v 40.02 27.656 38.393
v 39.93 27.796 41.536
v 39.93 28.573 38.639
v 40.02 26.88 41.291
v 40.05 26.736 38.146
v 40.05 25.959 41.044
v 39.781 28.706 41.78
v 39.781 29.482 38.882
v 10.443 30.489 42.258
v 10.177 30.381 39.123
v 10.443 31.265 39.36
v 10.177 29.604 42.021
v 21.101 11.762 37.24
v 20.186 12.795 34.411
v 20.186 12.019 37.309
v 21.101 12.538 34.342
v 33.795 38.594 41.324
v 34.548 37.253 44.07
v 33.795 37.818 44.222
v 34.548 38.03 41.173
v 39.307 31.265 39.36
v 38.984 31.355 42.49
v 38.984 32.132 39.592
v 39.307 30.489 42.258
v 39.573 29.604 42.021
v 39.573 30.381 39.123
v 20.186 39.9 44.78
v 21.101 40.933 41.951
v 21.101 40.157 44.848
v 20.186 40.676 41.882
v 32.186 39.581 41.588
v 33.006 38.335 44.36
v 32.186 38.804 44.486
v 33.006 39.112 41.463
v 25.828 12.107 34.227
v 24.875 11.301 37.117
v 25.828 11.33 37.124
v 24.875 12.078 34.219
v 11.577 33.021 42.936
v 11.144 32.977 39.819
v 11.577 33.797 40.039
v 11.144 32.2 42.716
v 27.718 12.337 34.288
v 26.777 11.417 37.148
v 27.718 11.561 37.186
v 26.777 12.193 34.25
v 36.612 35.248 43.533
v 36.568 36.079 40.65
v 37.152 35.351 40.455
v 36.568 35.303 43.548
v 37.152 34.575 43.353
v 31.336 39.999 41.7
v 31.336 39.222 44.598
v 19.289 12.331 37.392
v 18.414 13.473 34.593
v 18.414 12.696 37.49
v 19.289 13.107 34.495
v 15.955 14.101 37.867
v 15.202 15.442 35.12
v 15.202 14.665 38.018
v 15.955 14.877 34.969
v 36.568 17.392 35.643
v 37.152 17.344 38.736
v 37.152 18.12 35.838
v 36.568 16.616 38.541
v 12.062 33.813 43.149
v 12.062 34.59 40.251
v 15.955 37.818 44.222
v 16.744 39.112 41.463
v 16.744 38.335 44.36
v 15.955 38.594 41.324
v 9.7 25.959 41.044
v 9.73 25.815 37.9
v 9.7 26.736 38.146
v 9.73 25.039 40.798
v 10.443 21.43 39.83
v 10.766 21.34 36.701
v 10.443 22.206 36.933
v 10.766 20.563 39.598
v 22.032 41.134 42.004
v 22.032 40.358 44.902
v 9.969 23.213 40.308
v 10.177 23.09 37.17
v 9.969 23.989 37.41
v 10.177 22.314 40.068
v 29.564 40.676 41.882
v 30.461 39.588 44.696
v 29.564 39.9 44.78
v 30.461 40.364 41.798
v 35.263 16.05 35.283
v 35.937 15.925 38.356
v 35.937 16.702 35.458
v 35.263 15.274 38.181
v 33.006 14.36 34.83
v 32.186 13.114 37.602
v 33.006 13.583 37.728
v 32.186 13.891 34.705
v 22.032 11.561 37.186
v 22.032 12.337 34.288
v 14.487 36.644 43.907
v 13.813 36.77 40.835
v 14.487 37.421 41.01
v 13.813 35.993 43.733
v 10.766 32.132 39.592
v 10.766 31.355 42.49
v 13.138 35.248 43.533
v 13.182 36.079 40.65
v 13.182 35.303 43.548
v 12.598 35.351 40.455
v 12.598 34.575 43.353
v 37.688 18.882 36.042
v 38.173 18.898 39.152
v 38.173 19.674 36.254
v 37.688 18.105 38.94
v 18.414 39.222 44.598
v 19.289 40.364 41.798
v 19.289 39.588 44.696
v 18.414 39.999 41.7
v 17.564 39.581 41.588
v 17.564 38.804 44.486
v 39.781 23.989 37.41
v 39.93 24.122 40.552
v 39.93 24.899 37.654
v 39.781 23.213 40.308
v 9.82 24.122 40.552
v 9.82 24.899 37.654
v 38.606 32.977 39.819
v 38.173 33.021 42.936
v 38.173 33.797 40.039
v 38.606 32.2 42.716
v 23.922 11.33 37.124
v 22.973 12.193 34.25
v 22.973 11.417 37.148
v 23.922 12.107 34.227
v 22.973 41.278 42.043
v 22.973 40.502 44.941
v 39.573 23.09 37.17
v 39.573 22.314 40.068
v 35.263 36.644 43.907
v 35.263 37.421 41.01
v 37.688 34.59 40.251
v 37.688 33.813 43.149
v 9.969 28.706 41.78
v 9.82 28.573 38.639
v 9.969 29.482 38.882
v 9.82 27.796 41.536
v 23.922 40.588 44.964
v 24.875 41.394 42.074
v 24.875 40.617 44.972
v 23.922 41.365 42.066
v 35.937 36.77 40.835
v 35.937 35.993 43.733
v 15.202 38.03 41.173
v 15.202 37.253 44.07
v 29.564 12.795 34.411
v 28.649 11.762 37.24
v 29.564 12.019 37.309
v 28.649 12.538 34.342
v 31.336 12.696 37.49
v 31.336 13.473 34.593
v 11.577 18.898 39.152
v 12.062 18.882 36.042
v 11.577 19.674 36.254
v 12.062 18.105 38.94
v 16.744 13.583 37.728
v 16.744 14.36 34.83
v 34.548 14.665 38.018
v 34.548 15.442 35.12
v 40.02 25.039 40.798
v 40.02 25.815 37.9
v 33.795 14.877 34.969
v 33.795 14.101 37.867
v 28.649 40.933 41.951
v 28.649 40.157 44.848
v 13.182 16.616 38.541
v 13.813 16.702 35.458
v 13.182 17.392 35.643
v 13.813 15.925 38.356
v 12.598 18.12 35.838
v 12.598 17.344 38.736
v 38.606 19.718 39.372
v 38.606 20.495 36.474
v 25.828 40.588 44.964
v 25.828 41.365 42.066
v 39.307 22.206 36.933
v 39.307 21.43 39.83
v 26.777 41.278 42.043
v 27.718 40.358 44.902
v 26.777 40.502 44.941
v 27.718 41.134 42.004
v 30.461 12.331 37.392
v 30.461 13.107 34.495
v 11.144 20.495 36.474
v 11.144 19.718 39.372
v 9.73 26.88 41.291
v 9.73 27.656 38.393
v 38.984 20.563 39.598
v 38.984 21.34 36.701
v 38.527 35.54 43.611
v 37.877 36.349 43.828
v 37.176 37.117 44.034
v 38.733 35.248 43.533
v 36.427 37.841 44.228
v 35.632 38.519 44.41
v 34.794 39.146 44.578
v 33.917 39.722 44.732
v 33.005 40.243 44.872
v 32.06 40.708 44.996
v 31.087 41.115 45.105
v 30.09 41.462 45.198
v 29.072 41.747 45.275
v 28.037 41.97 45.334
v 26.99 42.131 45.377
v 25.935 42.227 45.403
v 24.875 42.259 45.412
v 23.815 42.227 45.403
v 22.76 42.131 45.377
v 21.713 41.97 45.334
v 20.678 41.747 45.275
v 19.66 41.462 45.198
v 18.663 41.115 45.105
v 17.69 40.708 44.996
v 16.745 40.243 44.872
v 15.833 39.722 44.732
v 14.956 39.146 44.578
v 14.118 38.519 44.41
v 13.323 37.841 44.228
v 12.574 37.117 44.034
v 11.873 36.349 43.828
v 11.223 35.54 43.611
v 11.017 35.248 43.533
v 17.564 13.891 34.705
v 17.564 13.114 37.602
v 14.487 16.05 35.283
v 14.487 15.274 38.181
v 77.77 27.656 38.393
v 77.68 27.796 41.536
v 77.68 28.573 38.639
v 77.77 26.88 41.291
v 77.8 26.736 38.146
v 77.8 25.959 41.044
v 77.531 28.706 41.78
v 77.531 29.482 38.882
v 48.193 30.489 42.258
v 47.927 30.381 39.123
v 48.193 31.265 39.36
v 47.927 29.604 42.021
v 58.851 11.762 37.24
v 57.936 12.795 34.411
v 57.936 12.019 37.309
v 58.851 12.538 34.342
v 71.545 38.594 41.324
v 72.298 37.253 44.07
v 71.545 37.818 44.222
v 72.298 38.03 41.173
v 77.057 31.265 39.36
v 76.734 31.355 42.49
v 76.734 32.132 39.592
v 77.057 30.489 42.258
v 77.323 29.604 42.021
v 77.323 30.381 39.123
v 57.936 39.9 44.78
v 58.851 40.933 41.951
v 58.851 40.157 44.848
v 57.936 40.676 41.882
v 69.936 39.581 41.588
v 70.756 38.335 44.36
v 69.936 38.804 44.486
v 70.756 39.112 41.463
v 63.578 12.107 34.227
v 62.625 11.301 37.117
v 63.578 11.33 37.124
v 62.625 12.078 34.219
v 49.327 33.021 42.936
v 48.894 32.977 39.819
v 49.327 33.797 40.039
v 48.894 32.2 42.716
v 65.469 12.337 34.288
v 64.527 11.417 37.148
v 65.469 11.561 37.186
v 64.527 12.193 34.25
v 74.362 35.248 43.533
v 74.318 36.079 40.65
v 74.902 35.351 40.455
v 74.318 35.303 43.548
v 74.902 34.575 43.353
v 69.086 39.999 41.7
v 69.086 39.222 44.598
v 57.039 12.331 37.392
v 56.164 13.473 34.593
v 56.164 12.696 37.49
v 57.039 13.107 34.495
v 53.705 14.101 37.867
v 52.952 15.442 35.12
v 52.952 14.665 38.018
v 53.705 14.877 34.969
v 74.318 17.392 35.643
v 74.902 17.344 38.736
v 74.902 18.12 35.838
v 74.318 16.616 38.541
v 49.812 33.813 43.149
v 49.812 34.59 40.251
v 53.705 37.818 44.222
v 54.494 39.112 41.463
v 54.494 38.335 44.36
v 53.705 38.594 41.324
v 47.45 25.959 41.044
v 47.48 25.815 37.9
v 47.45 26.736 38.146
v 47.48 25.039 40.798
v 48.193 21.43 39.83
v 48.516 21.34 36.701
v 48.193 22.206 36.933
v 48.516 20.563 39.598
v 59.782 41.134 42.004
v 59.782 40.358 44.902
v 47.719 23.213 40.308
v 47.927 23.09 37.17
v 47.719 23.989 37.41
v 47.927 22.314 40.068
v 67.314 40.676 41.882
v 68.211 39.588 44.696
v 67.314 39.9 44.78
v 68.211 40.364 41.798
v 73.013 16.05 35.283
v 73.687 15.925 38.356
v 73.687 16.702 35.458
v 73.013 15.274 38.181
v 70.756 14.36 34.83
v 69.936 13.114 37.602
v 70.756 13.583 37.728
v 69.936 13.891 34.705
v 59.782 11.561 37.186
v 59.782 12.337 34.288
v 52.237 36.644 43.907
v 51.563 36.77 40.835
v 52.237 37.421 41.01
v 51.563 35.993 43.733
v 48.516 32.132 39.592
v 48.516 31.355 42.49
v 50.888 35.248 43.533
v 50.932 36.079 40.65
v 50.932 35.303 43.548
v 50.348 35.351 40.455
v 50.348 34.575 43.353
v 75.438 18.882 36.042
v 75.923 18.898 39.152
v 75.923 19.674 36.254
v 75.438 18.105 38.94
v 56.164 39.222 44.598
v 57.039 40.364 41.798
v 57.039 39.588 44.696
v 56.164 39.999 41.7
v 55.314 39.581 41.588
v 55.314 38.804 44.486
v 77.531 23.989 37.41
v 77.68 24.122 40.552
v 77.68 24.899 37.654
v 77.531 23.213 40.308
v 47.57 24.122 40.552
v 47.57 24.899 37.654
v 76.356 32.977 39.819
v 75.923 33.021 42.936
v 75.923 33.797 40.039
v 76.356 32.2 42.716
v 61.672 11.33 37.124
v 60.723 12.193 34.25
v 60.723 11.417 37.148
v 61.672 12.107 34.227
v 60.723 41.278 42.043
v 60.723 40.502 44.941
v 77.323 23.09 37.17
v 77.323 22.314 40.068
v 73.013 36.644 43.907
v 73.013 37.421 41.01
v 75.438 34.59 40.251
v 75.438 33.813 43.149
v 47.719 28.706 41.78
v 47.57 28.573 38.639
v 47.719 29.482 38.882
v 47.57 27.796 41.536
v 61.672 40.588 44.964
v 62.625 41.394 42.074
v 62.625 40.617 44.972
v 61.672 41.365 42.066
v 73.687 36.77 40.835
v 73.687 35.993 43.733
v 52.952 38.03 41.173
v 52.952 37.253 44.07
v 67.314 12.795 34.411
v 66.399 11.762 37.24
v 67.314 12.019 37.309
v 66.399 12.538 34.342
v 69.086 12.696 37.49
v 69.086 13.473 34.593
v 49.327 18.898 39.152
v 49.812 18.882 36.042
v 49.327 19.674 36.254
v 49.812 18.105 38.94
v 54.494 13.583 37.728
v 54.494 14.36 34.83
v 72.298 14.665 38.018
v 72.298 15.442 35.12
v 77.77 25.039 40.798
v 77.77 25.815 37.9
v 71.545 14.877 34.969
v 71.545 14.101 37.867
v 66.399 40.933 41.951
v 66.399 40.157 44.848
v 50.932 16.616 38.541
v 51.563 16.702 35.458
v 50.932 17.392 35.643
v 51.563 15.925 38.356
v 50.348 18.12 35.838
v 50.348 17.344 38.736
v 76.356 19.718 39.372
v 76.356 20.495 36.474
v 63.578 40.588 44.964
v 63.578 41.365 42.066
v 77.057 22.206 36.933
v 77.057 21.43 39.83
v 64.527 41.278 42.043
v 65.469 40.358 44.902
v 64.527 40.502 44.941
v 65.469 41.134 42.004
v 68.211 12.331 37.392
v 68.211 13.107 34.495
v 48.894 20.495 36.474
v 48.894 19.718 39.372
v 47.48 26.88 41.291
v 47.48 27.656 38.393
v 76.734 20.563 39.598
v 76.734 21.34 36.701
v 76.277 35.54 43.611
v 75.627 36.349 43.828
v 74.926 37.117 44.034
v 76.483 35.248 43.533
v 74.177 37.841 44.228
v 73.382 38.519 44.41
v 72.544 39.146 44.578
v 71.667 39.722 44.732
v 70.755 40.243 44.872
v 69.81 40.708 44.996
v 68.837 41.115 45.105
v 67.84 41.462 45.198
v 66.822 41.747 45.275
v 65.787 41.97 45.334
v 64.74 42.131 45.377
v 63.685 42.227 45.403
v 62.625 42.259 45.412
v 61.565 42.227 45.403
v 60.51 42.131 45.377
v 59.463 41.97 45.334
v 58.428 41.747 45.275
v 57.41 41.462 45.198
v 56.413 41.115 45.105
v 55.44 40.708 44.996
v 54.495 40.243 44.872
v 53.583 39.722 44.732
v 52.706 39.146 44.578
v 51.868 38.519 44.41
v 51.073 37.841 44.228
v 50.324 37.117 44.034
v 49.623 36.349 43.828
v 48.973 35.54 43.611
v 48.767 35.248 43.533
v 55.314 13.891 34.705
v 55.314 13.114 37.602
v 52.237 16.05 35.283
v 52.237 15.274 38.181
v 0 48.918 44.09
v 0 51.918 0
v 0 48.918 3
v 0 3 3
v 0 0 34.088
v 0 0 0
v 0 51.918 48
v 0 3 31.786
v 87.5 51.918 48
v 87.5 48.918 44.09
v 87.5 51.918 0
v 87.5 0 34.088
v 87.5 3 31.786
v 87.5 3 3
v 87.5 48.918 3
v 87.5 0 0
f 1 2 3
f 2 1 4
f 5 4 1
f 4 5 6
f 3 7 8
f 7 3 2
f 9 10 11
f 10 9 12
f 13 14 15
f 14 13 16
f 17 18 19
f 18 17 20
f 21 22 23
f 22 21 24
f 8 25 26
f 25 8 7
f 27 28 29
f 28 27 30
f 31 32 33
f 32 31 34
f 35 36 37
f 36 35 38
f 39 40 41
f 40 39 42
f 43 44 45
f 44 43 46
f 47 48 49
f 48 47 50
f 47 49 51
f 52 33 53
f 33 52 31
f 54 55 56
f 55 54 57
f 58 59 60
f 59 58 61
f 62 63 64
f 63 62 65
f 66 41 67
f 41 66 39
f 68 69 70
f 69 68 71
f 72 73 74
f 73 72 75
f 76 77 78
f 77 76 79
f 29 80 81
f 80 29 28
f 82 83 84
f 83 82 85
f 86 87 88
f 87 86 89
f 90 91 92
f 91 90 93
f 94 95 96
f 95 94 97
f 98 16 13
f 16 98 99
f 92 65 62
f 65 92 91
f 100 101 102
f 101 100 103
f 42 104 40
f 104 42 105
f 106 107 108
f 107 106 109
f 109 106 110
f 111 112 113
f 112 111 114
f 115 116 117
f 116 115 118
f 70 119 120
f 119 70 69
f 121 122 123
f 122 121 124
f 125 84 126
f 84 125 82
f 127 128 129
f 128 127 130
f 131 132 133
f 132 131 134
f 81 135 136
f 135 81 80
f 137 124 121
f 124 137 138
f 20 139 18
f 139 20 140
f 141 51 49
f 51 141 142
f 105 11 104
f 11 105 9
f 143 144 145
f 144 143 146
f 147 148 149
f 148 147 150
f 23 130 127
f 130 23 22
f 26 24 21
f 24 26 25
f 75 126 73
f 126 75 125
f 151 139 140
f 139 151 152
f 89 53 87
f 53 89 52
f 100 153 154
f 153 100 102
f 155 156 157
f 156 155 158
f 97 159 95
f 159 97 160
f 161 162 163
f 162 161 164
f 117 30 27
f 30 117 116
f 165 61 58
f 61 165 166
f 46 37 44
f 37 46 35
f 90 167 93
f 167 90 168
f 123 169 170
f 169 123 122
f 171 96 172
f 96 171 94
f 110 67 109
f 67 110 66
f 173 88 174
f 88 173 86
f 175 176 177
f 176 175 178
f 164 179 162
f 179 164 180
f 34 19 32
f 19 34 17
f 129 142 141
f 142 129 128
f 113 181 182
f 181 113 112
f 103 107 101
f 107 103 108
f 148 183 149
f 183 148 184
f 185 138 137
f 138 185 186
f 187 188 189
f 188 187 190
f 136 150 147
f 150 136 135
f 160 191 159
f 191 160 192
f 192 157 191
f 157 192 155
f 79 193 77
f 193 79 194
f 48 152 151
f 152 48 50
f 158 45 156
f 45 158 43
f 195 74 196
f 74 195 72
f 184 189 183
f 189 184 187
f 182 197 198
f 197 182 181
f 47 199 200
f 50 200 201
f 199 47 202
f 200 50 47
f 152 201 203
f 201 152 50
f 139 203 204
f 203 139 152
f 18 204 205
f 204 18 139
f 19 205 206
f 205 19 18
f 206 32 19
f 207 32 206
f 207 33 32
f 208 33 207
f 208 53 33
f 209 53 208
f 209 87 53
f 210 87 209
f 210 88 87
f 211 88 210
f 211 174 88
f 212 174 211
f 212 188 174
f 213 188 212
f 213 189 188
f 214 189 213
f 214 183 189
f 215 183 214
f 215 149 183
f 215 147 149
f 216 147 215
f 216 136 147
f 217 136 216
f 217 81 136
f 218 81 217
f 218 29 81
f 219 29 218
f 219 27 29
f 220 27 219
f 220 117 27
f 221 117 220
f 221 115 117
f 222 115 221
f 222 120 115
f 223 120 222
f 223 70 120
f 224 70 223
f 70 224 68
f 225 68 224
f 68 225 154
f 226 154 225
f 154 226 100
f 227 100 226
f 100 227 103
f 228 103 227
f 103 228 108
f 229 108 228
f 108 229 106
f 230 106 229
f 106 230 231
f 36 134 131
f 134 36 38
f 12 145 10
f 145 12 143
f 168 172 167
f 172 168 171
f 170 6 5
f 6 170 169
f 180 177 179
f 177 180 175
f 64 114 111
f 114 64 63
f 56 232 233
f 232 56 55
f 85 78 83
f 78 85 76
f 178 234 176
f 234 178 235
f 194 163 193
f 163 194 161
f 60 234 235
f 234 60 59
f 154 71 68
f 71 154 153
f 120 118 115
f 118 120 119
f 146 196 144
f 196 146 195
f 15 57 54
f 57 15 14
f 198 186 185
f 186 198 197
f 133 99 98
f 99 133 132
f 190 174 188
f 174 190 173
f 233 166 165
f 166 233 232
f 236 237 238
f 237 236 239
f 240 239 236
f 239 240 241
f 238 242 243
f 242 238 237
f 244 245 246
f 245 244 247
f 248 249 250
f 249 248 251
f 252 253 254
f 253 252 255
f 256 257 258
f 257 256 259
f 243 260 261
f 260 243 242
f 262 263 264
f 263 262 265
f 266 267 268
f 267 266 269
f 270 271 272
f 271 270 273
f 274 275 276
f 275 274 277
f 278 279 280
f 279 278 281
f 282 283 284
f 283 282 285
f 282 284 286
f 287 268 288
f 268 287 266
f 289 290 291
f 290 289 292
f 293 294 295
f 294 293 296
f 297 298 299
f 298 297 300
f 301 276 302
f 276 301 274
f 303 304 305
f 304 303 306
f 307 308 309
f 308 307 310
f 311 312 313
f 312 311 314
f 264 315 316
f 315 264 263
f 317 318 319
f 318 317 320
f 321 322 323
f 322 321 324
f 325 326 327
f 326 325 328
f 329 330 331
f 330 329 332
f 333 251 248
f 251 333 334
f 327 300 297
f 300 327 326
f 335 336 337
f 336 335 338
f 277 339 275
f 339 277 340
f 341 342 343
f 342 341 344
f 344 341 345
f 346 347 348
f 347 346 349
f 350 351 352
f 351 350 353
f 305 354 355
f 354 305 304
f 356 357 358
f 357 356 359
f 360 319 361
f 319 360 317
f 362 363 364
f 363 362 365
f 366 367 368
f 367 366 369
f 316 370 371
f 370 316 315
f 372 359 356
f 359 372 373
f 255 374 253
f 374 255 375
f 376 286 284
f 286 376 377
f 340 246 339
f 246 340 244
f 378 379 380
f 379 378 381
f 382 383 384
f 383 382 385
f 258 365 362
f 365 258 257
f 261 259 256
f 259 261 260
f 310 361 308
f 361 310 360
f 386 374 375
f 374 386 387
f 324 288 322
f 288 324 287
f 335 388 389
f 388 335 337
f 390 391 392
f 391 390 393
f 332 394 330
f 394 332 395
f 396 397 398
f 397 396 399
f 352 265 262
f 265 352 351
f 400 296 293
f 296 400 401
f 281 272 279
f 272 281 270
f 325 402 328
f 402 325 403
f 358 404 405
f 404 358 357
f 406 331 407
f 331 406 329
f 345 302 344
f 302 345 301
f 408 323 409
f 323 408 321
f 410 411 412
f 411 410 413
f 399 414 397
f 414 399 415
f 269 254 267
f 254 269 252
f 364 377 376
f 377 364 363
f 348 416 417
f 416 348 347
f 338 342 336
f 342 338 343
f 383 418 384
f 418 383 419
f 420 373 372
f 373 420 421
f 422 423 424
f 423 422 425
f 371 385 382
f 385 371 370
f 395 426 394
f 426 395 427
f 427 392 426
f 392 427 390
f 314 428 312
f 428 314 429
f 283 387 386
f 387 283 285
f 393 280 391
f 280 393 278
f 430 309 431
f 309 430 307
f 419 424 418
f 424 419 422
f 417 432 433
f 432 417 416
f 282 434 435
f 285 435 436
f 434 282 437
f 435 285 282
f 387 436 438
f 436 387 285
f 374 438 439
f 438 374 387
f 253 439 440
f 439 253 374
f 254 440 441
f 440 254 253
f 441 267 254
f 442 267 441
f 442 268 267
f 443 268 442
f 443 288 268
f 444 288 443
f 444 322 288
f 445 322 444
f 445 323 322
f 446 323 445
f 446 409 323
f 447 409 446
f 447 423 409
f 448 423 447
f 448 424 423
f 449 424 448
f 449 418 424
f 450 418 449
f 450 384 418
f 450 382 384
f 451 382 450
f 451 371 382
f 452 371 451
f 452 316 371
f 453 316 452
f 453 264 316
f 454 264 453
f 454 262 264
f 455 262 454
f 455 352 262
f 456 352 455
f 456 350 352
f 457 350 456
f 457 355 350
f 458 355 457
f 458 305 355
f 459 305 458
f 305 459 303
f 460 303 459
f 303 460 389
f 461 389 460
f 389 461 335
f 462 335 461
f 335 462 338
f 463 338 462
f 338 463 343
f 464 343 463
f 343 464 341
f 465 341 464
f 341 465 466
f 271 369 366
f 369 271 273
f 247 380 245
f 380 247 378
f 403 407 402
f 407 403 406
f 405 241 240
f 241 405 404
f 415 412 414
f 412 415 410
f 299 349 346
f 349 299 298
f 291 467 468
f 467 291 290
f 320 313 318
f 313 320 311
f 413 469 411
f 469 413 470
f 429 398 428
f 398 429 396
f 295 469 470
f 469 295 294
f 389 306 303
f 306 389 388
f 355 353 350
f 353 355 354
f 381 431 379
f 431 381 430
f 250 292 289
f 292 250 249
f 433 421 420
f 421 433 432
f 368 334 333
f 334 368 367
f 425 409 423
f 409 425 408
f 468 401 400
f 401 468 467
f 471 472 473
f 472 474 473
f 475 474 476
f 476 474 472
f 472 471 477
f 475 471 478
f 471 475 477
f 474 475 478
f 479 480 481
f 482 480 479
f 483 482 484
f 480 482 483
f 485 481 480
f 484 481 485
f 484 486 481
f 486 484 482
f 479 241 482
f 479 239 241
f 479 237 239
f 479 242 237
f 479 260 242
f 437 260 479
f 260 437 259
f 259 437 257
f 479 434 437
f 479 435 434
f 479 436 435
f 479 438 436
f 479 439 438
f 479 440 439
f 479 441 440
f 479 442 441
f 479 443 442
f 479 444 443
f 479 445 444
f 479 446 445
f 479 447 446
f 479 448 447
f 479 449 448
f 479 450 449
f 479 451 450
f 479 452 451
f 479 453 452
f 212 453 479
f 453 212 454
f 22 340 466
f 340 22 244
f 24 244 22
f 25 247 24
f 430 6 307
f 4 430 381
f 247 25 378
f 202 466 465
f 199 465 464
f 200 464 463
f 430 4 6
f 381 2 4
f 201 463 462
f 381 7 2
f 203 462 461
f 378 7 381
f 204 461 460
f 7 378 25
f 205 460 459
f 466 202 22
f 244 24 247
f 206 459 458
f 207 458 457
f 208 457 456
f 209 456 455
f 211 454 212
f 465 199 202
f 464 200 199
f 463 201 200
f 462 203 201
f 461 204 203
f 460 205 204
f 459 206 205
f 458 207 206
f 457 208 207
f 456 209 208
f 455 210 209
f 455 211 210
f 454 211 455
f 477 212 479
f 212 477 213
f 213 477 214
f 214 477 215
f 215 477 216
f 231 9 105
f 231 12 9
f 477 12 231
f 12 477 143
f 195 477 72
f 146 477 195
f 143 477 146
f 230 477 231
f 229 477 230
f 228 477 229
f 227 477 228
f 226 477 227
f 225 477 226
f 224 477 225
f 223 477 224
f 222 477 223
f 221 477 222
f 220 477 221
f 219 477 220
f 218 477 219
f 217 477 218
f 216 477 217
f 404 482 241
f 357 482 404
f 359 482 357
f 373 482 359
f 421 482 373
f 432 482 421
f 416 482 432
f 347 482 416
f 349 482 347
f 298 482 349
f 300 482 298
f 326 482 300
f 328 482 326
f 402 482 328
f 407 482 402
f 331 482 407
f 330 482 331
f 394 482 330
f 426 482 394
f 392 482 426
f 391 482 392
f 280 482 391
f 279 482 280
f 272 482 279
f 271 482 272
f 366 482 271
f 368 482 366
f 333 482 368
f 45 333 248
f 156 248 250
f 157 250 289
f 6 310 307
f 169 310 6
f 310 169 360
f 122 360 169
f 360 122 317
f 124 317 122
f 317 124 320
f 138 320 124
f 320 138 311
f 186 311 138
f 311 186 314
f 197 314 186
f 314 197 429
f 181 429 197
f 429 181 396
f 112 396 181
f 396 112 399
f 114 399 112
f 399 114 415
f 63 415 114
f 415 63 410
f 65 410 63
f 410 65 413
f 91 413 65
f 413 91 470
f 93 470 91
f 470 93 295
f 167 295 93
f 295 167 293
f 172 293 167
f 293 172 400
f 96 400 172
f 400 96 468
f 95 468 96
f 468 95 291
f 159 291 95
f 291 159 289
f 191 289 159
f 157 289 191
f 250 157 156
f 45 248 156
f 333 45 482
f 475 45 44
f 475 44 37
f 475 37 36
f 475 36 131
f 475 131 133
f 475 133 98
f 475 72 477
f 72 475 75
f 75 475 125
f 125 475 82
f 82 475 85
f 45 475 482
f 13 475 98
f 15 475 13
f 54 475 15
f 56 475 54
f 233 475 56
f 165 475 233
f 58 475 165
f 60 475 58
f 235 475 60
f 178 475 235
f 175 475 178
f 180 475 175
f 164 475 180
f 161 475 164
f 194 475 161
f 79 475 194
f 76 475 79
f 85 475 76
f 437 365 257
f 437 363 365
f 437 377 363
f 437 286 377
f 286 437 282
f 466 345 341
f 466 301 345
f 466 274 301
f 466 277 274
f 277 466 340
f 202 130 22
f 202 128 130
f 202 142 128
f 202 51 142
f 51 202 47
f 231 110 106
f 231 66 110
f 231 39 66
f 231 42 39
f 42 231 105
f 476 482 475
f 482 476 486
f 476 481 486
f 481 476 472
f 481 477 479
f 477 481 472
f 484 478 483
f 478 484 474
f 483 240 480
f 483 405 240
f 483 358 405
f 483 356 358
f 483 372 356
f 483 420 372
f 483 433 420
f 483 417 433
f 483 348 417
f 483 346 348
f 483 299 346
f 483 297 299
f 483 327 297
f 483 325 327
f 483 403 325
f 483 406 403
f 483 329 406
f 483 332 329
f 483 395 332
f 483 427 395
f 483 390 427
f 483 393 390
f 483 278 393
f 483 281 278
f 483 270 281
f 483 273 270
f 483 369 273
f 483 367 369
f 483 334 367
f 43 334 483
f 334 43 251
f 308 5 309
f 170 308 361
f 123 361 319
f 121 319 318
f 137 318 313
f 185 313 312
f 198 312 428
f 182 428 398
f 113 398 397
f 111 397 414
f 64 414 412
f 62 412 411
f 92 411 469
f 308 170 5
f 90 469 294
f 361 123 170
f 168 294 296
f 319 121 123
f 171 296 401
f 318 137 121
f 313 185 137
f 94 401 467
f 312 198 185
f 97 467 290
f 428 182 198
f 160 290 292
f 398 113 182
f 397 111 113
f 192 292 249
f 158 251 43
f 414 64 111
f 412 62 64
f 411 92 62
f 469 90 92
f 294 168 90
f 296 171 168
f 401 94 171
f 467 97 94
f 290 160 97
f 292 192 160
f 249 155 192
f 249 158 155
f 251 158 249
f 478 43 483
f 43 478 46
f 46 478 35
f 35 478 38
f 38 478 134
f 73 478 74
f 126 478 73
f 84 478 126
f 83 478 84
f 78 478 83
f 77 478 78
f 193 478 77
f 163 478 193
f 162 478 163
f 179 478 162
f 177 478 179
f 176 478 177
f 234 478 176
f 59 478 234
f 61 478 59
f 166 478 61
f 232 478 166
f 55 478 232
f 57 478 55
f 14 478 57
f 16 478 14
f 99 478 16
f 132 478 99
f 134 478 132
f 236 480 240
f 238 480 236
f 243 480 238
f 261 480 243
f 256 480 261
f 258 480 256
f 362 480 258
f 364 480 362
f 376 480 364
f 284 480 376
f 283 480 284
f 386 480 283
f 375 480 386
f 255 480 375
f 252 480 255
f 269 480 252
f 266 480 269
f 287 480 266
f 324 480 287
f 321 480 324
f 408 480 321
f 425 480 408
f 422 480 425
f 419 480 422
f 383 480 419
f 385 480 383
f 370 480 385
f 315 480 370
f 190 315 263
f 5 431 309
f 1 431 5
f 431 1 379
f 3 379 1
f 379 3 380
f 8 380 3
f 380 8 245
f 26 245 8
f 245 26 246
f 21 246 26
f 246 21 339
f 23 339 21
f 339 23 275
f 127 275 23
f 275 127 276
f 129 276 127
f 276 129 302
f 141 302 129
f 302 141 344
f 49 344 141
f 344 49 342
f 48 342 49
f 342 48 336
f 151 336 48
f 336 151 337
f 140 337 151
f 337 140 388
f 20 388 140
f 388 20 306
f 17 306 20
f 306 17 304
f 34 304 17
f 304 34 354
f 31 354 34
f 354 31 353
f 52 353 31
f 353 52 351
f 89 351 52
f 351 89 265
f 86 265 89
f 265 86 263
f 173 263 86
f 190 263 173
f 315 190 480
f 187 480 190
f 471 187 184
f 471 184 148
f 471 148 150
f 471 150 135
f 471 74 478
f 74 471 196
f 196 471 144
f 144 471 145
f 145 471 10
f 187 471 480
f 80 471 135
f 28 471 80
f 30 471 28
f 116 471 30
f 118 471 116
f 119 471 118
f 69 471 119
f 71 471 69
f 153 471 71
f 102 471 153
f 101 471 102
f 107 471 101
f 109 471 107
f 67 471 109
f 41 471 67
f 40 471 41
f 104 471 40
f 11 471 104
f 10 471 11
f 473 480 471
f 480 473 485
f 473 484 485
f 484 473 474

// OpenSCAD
// All dimensions in millimeters

// Invariants
BUTTON_SHAFT_DIAMETER = 29.35;
BUTTON_OUTER_DIAMETER = 33.75;
BUTTON_FACE_THICKNESS = 5.00; // Approximate
BUTTON_SHAFT_LENGTH = 19.50;

SWITCH_SHAFT_DIAMETER = 11.58;
SWITCH_SHAFT_LENGTH = 11.30; // Total length, washer is inside the shaft
SWITCH_WASHER_DIAMETER = 17.45;
SWITCH_WASHER_THICKNESS = 5.05;

SWITCH_BOX_LENGTH = 24.50;
SWITCH_BOX_WIDTH = 14.05;
SWITCH_BOX_DEPTH = 13.95;

// Variables
INCLUDE_SWITCH = false;
ENCLOSURE_BACK_HEIGHT = 48.00;
FRAME_THICKNESS = 3.00;
COMPONENT_SHAFT_TOLERANCE = 0.50;
COMPONENT_MARGIN = 4.00;
PANEL_MARGIN_HORIZONTAL = 8.00;
PANEL_MARGIN_VERTICAL = 10.00;
PANEL_SLOPE_DEGREES = 15.0;

// Derived

PANEL_WIDTH = BUTTON_OUTER_DIAMETER + (PANEL_MARGIN_VERTICAL * 2);

PANEL_LENGTH =
  INCLUDE_SWITCH
    ? (PANEL_MARGIN_HORIZONTAL * 2) + (BUTTON_OUTER_DIAMETER * 2) + SWITCH_WASHER_DIAMETER + (COMPONENT_MARGIN * 2)
    : (PANEL_MARGIN_HORIZONTAL * 2) + (BUTTON_OUTER_DIAMETER * 2) + COMPONENT_MARGIN;

PANEL_DISTANCE_HORIZONTAL = PANEL_WIDTH * cos(PANEL_SLOPE_DEGREES);
PANEL_DISTANCE_VERTICAL = PANEL_WIDTH * sin(PANEL_SLOPE_DEGREES);

PANEl_BACK_HEIGHT = ENCLOSURE_BACK_HEIGHT;
PANEL_BACK_POSITION_HORIZONTAL = PANEL_DISTANCE_HORIZONTAL - FRAME_THICKNESS;

PANEL_FRONT_HEIGHT = PANEl_BACK_HEIGHT - PANEL_DISTANCE_VERTICAL;

COMPONENT_CENTER_HORIZONTAL = (PANEL_WIDTH / 2) * cos(PANEL_SLOPE_DEGREES);
COMPONENT_CENTER_VERTICAL = PANEL_FRONT_HEIGHT + ((PANEL_WIDTH / 2) * sin(PANEL_SLOPE_DEGREES));

BUTTON_A_CENTER_X = PANEL_MARGIN_HORIZONTAL + (BUTTON_OUTER_DIAMETER / 2);
BUTTON_B_CENTER_X = PANEL_MARGIN_HORIZONTAL + BUTTON_OUTER_DIAMETER + COMPONENT_MARGIN + (BUTTON_OUTER_DIAMETER / 2);

SWITCH_CENTER_X = PANEL_LENGTH - (PANEL_MARGIN_HORIZONTAL + (SWITCH_WASHER_DIAMETER / 2));
SWITCH_BOX_OFFSET_Z = -1 * ((SWITCH_BOX_DEPTH / 2) + FRAME_THICKNESS);

// Models

module assembly() {
  enclosure();

  // button();

  // switch();
}

module button() {
  color("blue") {
    union() {
      // Shaft
      translate([0.0, 0.0, -BUTTON_SHAFT_LENGTH]) {
        cylinder(h=BUTTON_SHAFT_LENGTH, r=((BUTTON_SHAFT_DIAMETER / 2) + COMPONENT_SHAFT_TOLERANCE), $fn=100);
      }

      // Top
      cylinder(h=BUTTON_FACE_THICKNESS, r=(BUTTON_OUTER_DIAMETER / 2), $fn=100);
    }
  }
}

module switch() {
  color("green") {
    union() {
      // Top
      cylinder(h=SWITCH_WASHER_THICKNESS, r=(SWITCH_WASHER_DIAMETER / 2), $fn=100);

      // Shaft
      translate([0.0, 0.0, -FRAME_THICKNESS]) {
        cylinder(h=SWITCH_SHAFT_LENGTH, r=((SWITCH_SHAFT_DIAMETER / 2) + COMPONENT_SHAFT_TOLERANCE), $fn=100);
      }

      // Box
      translate([0.0, 0.0, SWITCH_BOX_OFFSET_Z]) {
        cube([SWITCH_BOX_WIDTH, SWITCH_BOX_LENGTH, SWITCH_BOX_DEPTH], center=true);
      }
    }
  }
}

module enclosure() {
  difference() {
    // Enclosure itself
    rotate([90.0, 0.0, 90.0]) {
      linear_extrude(PANEL_LENGTH, convexity=10) {
        side_sketch();
      }
    }

    // Button A
    translate([BUTTON_A_CENTER_X, COMPONENT_CENTER_HORIZONTAL, COMPONENT_CENTER_VERTICAL]) {
      rotate([PANEL_SLOPE_DEGREES, 0.0, 0.0]) {
        button();
      }
    }

    // Button B
    translate([BUTTON_B_CENTER_X, COMPONENT_CENTER_HORIZONTAL, COMPONENT_CENTER_VERTICAL]) {
      rotate([PANEL_SLOPE_DEGREES, 0.0, 0.0]) {
        button();
      }
    }

    //Switch
    if (INCLUDE_SWITCH) {
      translate([SWITCH_CENTER_X, COMPONENT_CENTER_HORIZONTAL, COMPONENT_CENTER_VERTICAL]) {
        rotate([PANEL_SLOPE_DEGREES, 0.0, 0.0]) {
          switch();
        }
      }
    }
  }
}

module side_sketch() {
  difference() {
    union() {
      // Front
      square([FRAME_THICKNESS, PANEL_FRONT_HEIGHT]);

      // Back
      translate([PANEL_BACK_POSITION_HORIZONTAL, 0.0, 0.0]) {
        square([FRAME_THICKNESS, PANEl_BACK_HEIGHT]);
      }

      // Panel (diagonal across the top)
      translate([0.0, PANEL_FRONT_HEIGHT, 0.0]) {
        rotate([0.0, 0.0, (PANEL_SLOPE_DEGREES - 90.0)]) {
          square([FRAME_THICKNESS, PANEL_WIDTH]);
        }
      }

      // Bottom
      square([PANEL_DISTANCE_HORIZONTAL, FRAME_THICKNESS]);
    }

    // Mask the back edge
    translate([PANEL_BACK_POSITION_HORIZONTAL + FRAME_THICKNESS, 0.0, 0.0]) {
      color("black") square([FRAME_THICKNESS, PANEl_BACK_HEIGHT]);
    }

    // Mask the panel edge
    translate([0.0, PANEL_FRONT_HEIGHT, 0.0]) {
      rotate([0.0, 0.0, (PANEL_SLOPE_DEGREES - 90.0)]) {
        translate([-FRAME_THICKNESS, 0.0, 0.0]) {
          color("black") square([FRAME_THICKNESS, PANEL_WIDTH]);
        }
      }
    }
  }
}

assembly();
